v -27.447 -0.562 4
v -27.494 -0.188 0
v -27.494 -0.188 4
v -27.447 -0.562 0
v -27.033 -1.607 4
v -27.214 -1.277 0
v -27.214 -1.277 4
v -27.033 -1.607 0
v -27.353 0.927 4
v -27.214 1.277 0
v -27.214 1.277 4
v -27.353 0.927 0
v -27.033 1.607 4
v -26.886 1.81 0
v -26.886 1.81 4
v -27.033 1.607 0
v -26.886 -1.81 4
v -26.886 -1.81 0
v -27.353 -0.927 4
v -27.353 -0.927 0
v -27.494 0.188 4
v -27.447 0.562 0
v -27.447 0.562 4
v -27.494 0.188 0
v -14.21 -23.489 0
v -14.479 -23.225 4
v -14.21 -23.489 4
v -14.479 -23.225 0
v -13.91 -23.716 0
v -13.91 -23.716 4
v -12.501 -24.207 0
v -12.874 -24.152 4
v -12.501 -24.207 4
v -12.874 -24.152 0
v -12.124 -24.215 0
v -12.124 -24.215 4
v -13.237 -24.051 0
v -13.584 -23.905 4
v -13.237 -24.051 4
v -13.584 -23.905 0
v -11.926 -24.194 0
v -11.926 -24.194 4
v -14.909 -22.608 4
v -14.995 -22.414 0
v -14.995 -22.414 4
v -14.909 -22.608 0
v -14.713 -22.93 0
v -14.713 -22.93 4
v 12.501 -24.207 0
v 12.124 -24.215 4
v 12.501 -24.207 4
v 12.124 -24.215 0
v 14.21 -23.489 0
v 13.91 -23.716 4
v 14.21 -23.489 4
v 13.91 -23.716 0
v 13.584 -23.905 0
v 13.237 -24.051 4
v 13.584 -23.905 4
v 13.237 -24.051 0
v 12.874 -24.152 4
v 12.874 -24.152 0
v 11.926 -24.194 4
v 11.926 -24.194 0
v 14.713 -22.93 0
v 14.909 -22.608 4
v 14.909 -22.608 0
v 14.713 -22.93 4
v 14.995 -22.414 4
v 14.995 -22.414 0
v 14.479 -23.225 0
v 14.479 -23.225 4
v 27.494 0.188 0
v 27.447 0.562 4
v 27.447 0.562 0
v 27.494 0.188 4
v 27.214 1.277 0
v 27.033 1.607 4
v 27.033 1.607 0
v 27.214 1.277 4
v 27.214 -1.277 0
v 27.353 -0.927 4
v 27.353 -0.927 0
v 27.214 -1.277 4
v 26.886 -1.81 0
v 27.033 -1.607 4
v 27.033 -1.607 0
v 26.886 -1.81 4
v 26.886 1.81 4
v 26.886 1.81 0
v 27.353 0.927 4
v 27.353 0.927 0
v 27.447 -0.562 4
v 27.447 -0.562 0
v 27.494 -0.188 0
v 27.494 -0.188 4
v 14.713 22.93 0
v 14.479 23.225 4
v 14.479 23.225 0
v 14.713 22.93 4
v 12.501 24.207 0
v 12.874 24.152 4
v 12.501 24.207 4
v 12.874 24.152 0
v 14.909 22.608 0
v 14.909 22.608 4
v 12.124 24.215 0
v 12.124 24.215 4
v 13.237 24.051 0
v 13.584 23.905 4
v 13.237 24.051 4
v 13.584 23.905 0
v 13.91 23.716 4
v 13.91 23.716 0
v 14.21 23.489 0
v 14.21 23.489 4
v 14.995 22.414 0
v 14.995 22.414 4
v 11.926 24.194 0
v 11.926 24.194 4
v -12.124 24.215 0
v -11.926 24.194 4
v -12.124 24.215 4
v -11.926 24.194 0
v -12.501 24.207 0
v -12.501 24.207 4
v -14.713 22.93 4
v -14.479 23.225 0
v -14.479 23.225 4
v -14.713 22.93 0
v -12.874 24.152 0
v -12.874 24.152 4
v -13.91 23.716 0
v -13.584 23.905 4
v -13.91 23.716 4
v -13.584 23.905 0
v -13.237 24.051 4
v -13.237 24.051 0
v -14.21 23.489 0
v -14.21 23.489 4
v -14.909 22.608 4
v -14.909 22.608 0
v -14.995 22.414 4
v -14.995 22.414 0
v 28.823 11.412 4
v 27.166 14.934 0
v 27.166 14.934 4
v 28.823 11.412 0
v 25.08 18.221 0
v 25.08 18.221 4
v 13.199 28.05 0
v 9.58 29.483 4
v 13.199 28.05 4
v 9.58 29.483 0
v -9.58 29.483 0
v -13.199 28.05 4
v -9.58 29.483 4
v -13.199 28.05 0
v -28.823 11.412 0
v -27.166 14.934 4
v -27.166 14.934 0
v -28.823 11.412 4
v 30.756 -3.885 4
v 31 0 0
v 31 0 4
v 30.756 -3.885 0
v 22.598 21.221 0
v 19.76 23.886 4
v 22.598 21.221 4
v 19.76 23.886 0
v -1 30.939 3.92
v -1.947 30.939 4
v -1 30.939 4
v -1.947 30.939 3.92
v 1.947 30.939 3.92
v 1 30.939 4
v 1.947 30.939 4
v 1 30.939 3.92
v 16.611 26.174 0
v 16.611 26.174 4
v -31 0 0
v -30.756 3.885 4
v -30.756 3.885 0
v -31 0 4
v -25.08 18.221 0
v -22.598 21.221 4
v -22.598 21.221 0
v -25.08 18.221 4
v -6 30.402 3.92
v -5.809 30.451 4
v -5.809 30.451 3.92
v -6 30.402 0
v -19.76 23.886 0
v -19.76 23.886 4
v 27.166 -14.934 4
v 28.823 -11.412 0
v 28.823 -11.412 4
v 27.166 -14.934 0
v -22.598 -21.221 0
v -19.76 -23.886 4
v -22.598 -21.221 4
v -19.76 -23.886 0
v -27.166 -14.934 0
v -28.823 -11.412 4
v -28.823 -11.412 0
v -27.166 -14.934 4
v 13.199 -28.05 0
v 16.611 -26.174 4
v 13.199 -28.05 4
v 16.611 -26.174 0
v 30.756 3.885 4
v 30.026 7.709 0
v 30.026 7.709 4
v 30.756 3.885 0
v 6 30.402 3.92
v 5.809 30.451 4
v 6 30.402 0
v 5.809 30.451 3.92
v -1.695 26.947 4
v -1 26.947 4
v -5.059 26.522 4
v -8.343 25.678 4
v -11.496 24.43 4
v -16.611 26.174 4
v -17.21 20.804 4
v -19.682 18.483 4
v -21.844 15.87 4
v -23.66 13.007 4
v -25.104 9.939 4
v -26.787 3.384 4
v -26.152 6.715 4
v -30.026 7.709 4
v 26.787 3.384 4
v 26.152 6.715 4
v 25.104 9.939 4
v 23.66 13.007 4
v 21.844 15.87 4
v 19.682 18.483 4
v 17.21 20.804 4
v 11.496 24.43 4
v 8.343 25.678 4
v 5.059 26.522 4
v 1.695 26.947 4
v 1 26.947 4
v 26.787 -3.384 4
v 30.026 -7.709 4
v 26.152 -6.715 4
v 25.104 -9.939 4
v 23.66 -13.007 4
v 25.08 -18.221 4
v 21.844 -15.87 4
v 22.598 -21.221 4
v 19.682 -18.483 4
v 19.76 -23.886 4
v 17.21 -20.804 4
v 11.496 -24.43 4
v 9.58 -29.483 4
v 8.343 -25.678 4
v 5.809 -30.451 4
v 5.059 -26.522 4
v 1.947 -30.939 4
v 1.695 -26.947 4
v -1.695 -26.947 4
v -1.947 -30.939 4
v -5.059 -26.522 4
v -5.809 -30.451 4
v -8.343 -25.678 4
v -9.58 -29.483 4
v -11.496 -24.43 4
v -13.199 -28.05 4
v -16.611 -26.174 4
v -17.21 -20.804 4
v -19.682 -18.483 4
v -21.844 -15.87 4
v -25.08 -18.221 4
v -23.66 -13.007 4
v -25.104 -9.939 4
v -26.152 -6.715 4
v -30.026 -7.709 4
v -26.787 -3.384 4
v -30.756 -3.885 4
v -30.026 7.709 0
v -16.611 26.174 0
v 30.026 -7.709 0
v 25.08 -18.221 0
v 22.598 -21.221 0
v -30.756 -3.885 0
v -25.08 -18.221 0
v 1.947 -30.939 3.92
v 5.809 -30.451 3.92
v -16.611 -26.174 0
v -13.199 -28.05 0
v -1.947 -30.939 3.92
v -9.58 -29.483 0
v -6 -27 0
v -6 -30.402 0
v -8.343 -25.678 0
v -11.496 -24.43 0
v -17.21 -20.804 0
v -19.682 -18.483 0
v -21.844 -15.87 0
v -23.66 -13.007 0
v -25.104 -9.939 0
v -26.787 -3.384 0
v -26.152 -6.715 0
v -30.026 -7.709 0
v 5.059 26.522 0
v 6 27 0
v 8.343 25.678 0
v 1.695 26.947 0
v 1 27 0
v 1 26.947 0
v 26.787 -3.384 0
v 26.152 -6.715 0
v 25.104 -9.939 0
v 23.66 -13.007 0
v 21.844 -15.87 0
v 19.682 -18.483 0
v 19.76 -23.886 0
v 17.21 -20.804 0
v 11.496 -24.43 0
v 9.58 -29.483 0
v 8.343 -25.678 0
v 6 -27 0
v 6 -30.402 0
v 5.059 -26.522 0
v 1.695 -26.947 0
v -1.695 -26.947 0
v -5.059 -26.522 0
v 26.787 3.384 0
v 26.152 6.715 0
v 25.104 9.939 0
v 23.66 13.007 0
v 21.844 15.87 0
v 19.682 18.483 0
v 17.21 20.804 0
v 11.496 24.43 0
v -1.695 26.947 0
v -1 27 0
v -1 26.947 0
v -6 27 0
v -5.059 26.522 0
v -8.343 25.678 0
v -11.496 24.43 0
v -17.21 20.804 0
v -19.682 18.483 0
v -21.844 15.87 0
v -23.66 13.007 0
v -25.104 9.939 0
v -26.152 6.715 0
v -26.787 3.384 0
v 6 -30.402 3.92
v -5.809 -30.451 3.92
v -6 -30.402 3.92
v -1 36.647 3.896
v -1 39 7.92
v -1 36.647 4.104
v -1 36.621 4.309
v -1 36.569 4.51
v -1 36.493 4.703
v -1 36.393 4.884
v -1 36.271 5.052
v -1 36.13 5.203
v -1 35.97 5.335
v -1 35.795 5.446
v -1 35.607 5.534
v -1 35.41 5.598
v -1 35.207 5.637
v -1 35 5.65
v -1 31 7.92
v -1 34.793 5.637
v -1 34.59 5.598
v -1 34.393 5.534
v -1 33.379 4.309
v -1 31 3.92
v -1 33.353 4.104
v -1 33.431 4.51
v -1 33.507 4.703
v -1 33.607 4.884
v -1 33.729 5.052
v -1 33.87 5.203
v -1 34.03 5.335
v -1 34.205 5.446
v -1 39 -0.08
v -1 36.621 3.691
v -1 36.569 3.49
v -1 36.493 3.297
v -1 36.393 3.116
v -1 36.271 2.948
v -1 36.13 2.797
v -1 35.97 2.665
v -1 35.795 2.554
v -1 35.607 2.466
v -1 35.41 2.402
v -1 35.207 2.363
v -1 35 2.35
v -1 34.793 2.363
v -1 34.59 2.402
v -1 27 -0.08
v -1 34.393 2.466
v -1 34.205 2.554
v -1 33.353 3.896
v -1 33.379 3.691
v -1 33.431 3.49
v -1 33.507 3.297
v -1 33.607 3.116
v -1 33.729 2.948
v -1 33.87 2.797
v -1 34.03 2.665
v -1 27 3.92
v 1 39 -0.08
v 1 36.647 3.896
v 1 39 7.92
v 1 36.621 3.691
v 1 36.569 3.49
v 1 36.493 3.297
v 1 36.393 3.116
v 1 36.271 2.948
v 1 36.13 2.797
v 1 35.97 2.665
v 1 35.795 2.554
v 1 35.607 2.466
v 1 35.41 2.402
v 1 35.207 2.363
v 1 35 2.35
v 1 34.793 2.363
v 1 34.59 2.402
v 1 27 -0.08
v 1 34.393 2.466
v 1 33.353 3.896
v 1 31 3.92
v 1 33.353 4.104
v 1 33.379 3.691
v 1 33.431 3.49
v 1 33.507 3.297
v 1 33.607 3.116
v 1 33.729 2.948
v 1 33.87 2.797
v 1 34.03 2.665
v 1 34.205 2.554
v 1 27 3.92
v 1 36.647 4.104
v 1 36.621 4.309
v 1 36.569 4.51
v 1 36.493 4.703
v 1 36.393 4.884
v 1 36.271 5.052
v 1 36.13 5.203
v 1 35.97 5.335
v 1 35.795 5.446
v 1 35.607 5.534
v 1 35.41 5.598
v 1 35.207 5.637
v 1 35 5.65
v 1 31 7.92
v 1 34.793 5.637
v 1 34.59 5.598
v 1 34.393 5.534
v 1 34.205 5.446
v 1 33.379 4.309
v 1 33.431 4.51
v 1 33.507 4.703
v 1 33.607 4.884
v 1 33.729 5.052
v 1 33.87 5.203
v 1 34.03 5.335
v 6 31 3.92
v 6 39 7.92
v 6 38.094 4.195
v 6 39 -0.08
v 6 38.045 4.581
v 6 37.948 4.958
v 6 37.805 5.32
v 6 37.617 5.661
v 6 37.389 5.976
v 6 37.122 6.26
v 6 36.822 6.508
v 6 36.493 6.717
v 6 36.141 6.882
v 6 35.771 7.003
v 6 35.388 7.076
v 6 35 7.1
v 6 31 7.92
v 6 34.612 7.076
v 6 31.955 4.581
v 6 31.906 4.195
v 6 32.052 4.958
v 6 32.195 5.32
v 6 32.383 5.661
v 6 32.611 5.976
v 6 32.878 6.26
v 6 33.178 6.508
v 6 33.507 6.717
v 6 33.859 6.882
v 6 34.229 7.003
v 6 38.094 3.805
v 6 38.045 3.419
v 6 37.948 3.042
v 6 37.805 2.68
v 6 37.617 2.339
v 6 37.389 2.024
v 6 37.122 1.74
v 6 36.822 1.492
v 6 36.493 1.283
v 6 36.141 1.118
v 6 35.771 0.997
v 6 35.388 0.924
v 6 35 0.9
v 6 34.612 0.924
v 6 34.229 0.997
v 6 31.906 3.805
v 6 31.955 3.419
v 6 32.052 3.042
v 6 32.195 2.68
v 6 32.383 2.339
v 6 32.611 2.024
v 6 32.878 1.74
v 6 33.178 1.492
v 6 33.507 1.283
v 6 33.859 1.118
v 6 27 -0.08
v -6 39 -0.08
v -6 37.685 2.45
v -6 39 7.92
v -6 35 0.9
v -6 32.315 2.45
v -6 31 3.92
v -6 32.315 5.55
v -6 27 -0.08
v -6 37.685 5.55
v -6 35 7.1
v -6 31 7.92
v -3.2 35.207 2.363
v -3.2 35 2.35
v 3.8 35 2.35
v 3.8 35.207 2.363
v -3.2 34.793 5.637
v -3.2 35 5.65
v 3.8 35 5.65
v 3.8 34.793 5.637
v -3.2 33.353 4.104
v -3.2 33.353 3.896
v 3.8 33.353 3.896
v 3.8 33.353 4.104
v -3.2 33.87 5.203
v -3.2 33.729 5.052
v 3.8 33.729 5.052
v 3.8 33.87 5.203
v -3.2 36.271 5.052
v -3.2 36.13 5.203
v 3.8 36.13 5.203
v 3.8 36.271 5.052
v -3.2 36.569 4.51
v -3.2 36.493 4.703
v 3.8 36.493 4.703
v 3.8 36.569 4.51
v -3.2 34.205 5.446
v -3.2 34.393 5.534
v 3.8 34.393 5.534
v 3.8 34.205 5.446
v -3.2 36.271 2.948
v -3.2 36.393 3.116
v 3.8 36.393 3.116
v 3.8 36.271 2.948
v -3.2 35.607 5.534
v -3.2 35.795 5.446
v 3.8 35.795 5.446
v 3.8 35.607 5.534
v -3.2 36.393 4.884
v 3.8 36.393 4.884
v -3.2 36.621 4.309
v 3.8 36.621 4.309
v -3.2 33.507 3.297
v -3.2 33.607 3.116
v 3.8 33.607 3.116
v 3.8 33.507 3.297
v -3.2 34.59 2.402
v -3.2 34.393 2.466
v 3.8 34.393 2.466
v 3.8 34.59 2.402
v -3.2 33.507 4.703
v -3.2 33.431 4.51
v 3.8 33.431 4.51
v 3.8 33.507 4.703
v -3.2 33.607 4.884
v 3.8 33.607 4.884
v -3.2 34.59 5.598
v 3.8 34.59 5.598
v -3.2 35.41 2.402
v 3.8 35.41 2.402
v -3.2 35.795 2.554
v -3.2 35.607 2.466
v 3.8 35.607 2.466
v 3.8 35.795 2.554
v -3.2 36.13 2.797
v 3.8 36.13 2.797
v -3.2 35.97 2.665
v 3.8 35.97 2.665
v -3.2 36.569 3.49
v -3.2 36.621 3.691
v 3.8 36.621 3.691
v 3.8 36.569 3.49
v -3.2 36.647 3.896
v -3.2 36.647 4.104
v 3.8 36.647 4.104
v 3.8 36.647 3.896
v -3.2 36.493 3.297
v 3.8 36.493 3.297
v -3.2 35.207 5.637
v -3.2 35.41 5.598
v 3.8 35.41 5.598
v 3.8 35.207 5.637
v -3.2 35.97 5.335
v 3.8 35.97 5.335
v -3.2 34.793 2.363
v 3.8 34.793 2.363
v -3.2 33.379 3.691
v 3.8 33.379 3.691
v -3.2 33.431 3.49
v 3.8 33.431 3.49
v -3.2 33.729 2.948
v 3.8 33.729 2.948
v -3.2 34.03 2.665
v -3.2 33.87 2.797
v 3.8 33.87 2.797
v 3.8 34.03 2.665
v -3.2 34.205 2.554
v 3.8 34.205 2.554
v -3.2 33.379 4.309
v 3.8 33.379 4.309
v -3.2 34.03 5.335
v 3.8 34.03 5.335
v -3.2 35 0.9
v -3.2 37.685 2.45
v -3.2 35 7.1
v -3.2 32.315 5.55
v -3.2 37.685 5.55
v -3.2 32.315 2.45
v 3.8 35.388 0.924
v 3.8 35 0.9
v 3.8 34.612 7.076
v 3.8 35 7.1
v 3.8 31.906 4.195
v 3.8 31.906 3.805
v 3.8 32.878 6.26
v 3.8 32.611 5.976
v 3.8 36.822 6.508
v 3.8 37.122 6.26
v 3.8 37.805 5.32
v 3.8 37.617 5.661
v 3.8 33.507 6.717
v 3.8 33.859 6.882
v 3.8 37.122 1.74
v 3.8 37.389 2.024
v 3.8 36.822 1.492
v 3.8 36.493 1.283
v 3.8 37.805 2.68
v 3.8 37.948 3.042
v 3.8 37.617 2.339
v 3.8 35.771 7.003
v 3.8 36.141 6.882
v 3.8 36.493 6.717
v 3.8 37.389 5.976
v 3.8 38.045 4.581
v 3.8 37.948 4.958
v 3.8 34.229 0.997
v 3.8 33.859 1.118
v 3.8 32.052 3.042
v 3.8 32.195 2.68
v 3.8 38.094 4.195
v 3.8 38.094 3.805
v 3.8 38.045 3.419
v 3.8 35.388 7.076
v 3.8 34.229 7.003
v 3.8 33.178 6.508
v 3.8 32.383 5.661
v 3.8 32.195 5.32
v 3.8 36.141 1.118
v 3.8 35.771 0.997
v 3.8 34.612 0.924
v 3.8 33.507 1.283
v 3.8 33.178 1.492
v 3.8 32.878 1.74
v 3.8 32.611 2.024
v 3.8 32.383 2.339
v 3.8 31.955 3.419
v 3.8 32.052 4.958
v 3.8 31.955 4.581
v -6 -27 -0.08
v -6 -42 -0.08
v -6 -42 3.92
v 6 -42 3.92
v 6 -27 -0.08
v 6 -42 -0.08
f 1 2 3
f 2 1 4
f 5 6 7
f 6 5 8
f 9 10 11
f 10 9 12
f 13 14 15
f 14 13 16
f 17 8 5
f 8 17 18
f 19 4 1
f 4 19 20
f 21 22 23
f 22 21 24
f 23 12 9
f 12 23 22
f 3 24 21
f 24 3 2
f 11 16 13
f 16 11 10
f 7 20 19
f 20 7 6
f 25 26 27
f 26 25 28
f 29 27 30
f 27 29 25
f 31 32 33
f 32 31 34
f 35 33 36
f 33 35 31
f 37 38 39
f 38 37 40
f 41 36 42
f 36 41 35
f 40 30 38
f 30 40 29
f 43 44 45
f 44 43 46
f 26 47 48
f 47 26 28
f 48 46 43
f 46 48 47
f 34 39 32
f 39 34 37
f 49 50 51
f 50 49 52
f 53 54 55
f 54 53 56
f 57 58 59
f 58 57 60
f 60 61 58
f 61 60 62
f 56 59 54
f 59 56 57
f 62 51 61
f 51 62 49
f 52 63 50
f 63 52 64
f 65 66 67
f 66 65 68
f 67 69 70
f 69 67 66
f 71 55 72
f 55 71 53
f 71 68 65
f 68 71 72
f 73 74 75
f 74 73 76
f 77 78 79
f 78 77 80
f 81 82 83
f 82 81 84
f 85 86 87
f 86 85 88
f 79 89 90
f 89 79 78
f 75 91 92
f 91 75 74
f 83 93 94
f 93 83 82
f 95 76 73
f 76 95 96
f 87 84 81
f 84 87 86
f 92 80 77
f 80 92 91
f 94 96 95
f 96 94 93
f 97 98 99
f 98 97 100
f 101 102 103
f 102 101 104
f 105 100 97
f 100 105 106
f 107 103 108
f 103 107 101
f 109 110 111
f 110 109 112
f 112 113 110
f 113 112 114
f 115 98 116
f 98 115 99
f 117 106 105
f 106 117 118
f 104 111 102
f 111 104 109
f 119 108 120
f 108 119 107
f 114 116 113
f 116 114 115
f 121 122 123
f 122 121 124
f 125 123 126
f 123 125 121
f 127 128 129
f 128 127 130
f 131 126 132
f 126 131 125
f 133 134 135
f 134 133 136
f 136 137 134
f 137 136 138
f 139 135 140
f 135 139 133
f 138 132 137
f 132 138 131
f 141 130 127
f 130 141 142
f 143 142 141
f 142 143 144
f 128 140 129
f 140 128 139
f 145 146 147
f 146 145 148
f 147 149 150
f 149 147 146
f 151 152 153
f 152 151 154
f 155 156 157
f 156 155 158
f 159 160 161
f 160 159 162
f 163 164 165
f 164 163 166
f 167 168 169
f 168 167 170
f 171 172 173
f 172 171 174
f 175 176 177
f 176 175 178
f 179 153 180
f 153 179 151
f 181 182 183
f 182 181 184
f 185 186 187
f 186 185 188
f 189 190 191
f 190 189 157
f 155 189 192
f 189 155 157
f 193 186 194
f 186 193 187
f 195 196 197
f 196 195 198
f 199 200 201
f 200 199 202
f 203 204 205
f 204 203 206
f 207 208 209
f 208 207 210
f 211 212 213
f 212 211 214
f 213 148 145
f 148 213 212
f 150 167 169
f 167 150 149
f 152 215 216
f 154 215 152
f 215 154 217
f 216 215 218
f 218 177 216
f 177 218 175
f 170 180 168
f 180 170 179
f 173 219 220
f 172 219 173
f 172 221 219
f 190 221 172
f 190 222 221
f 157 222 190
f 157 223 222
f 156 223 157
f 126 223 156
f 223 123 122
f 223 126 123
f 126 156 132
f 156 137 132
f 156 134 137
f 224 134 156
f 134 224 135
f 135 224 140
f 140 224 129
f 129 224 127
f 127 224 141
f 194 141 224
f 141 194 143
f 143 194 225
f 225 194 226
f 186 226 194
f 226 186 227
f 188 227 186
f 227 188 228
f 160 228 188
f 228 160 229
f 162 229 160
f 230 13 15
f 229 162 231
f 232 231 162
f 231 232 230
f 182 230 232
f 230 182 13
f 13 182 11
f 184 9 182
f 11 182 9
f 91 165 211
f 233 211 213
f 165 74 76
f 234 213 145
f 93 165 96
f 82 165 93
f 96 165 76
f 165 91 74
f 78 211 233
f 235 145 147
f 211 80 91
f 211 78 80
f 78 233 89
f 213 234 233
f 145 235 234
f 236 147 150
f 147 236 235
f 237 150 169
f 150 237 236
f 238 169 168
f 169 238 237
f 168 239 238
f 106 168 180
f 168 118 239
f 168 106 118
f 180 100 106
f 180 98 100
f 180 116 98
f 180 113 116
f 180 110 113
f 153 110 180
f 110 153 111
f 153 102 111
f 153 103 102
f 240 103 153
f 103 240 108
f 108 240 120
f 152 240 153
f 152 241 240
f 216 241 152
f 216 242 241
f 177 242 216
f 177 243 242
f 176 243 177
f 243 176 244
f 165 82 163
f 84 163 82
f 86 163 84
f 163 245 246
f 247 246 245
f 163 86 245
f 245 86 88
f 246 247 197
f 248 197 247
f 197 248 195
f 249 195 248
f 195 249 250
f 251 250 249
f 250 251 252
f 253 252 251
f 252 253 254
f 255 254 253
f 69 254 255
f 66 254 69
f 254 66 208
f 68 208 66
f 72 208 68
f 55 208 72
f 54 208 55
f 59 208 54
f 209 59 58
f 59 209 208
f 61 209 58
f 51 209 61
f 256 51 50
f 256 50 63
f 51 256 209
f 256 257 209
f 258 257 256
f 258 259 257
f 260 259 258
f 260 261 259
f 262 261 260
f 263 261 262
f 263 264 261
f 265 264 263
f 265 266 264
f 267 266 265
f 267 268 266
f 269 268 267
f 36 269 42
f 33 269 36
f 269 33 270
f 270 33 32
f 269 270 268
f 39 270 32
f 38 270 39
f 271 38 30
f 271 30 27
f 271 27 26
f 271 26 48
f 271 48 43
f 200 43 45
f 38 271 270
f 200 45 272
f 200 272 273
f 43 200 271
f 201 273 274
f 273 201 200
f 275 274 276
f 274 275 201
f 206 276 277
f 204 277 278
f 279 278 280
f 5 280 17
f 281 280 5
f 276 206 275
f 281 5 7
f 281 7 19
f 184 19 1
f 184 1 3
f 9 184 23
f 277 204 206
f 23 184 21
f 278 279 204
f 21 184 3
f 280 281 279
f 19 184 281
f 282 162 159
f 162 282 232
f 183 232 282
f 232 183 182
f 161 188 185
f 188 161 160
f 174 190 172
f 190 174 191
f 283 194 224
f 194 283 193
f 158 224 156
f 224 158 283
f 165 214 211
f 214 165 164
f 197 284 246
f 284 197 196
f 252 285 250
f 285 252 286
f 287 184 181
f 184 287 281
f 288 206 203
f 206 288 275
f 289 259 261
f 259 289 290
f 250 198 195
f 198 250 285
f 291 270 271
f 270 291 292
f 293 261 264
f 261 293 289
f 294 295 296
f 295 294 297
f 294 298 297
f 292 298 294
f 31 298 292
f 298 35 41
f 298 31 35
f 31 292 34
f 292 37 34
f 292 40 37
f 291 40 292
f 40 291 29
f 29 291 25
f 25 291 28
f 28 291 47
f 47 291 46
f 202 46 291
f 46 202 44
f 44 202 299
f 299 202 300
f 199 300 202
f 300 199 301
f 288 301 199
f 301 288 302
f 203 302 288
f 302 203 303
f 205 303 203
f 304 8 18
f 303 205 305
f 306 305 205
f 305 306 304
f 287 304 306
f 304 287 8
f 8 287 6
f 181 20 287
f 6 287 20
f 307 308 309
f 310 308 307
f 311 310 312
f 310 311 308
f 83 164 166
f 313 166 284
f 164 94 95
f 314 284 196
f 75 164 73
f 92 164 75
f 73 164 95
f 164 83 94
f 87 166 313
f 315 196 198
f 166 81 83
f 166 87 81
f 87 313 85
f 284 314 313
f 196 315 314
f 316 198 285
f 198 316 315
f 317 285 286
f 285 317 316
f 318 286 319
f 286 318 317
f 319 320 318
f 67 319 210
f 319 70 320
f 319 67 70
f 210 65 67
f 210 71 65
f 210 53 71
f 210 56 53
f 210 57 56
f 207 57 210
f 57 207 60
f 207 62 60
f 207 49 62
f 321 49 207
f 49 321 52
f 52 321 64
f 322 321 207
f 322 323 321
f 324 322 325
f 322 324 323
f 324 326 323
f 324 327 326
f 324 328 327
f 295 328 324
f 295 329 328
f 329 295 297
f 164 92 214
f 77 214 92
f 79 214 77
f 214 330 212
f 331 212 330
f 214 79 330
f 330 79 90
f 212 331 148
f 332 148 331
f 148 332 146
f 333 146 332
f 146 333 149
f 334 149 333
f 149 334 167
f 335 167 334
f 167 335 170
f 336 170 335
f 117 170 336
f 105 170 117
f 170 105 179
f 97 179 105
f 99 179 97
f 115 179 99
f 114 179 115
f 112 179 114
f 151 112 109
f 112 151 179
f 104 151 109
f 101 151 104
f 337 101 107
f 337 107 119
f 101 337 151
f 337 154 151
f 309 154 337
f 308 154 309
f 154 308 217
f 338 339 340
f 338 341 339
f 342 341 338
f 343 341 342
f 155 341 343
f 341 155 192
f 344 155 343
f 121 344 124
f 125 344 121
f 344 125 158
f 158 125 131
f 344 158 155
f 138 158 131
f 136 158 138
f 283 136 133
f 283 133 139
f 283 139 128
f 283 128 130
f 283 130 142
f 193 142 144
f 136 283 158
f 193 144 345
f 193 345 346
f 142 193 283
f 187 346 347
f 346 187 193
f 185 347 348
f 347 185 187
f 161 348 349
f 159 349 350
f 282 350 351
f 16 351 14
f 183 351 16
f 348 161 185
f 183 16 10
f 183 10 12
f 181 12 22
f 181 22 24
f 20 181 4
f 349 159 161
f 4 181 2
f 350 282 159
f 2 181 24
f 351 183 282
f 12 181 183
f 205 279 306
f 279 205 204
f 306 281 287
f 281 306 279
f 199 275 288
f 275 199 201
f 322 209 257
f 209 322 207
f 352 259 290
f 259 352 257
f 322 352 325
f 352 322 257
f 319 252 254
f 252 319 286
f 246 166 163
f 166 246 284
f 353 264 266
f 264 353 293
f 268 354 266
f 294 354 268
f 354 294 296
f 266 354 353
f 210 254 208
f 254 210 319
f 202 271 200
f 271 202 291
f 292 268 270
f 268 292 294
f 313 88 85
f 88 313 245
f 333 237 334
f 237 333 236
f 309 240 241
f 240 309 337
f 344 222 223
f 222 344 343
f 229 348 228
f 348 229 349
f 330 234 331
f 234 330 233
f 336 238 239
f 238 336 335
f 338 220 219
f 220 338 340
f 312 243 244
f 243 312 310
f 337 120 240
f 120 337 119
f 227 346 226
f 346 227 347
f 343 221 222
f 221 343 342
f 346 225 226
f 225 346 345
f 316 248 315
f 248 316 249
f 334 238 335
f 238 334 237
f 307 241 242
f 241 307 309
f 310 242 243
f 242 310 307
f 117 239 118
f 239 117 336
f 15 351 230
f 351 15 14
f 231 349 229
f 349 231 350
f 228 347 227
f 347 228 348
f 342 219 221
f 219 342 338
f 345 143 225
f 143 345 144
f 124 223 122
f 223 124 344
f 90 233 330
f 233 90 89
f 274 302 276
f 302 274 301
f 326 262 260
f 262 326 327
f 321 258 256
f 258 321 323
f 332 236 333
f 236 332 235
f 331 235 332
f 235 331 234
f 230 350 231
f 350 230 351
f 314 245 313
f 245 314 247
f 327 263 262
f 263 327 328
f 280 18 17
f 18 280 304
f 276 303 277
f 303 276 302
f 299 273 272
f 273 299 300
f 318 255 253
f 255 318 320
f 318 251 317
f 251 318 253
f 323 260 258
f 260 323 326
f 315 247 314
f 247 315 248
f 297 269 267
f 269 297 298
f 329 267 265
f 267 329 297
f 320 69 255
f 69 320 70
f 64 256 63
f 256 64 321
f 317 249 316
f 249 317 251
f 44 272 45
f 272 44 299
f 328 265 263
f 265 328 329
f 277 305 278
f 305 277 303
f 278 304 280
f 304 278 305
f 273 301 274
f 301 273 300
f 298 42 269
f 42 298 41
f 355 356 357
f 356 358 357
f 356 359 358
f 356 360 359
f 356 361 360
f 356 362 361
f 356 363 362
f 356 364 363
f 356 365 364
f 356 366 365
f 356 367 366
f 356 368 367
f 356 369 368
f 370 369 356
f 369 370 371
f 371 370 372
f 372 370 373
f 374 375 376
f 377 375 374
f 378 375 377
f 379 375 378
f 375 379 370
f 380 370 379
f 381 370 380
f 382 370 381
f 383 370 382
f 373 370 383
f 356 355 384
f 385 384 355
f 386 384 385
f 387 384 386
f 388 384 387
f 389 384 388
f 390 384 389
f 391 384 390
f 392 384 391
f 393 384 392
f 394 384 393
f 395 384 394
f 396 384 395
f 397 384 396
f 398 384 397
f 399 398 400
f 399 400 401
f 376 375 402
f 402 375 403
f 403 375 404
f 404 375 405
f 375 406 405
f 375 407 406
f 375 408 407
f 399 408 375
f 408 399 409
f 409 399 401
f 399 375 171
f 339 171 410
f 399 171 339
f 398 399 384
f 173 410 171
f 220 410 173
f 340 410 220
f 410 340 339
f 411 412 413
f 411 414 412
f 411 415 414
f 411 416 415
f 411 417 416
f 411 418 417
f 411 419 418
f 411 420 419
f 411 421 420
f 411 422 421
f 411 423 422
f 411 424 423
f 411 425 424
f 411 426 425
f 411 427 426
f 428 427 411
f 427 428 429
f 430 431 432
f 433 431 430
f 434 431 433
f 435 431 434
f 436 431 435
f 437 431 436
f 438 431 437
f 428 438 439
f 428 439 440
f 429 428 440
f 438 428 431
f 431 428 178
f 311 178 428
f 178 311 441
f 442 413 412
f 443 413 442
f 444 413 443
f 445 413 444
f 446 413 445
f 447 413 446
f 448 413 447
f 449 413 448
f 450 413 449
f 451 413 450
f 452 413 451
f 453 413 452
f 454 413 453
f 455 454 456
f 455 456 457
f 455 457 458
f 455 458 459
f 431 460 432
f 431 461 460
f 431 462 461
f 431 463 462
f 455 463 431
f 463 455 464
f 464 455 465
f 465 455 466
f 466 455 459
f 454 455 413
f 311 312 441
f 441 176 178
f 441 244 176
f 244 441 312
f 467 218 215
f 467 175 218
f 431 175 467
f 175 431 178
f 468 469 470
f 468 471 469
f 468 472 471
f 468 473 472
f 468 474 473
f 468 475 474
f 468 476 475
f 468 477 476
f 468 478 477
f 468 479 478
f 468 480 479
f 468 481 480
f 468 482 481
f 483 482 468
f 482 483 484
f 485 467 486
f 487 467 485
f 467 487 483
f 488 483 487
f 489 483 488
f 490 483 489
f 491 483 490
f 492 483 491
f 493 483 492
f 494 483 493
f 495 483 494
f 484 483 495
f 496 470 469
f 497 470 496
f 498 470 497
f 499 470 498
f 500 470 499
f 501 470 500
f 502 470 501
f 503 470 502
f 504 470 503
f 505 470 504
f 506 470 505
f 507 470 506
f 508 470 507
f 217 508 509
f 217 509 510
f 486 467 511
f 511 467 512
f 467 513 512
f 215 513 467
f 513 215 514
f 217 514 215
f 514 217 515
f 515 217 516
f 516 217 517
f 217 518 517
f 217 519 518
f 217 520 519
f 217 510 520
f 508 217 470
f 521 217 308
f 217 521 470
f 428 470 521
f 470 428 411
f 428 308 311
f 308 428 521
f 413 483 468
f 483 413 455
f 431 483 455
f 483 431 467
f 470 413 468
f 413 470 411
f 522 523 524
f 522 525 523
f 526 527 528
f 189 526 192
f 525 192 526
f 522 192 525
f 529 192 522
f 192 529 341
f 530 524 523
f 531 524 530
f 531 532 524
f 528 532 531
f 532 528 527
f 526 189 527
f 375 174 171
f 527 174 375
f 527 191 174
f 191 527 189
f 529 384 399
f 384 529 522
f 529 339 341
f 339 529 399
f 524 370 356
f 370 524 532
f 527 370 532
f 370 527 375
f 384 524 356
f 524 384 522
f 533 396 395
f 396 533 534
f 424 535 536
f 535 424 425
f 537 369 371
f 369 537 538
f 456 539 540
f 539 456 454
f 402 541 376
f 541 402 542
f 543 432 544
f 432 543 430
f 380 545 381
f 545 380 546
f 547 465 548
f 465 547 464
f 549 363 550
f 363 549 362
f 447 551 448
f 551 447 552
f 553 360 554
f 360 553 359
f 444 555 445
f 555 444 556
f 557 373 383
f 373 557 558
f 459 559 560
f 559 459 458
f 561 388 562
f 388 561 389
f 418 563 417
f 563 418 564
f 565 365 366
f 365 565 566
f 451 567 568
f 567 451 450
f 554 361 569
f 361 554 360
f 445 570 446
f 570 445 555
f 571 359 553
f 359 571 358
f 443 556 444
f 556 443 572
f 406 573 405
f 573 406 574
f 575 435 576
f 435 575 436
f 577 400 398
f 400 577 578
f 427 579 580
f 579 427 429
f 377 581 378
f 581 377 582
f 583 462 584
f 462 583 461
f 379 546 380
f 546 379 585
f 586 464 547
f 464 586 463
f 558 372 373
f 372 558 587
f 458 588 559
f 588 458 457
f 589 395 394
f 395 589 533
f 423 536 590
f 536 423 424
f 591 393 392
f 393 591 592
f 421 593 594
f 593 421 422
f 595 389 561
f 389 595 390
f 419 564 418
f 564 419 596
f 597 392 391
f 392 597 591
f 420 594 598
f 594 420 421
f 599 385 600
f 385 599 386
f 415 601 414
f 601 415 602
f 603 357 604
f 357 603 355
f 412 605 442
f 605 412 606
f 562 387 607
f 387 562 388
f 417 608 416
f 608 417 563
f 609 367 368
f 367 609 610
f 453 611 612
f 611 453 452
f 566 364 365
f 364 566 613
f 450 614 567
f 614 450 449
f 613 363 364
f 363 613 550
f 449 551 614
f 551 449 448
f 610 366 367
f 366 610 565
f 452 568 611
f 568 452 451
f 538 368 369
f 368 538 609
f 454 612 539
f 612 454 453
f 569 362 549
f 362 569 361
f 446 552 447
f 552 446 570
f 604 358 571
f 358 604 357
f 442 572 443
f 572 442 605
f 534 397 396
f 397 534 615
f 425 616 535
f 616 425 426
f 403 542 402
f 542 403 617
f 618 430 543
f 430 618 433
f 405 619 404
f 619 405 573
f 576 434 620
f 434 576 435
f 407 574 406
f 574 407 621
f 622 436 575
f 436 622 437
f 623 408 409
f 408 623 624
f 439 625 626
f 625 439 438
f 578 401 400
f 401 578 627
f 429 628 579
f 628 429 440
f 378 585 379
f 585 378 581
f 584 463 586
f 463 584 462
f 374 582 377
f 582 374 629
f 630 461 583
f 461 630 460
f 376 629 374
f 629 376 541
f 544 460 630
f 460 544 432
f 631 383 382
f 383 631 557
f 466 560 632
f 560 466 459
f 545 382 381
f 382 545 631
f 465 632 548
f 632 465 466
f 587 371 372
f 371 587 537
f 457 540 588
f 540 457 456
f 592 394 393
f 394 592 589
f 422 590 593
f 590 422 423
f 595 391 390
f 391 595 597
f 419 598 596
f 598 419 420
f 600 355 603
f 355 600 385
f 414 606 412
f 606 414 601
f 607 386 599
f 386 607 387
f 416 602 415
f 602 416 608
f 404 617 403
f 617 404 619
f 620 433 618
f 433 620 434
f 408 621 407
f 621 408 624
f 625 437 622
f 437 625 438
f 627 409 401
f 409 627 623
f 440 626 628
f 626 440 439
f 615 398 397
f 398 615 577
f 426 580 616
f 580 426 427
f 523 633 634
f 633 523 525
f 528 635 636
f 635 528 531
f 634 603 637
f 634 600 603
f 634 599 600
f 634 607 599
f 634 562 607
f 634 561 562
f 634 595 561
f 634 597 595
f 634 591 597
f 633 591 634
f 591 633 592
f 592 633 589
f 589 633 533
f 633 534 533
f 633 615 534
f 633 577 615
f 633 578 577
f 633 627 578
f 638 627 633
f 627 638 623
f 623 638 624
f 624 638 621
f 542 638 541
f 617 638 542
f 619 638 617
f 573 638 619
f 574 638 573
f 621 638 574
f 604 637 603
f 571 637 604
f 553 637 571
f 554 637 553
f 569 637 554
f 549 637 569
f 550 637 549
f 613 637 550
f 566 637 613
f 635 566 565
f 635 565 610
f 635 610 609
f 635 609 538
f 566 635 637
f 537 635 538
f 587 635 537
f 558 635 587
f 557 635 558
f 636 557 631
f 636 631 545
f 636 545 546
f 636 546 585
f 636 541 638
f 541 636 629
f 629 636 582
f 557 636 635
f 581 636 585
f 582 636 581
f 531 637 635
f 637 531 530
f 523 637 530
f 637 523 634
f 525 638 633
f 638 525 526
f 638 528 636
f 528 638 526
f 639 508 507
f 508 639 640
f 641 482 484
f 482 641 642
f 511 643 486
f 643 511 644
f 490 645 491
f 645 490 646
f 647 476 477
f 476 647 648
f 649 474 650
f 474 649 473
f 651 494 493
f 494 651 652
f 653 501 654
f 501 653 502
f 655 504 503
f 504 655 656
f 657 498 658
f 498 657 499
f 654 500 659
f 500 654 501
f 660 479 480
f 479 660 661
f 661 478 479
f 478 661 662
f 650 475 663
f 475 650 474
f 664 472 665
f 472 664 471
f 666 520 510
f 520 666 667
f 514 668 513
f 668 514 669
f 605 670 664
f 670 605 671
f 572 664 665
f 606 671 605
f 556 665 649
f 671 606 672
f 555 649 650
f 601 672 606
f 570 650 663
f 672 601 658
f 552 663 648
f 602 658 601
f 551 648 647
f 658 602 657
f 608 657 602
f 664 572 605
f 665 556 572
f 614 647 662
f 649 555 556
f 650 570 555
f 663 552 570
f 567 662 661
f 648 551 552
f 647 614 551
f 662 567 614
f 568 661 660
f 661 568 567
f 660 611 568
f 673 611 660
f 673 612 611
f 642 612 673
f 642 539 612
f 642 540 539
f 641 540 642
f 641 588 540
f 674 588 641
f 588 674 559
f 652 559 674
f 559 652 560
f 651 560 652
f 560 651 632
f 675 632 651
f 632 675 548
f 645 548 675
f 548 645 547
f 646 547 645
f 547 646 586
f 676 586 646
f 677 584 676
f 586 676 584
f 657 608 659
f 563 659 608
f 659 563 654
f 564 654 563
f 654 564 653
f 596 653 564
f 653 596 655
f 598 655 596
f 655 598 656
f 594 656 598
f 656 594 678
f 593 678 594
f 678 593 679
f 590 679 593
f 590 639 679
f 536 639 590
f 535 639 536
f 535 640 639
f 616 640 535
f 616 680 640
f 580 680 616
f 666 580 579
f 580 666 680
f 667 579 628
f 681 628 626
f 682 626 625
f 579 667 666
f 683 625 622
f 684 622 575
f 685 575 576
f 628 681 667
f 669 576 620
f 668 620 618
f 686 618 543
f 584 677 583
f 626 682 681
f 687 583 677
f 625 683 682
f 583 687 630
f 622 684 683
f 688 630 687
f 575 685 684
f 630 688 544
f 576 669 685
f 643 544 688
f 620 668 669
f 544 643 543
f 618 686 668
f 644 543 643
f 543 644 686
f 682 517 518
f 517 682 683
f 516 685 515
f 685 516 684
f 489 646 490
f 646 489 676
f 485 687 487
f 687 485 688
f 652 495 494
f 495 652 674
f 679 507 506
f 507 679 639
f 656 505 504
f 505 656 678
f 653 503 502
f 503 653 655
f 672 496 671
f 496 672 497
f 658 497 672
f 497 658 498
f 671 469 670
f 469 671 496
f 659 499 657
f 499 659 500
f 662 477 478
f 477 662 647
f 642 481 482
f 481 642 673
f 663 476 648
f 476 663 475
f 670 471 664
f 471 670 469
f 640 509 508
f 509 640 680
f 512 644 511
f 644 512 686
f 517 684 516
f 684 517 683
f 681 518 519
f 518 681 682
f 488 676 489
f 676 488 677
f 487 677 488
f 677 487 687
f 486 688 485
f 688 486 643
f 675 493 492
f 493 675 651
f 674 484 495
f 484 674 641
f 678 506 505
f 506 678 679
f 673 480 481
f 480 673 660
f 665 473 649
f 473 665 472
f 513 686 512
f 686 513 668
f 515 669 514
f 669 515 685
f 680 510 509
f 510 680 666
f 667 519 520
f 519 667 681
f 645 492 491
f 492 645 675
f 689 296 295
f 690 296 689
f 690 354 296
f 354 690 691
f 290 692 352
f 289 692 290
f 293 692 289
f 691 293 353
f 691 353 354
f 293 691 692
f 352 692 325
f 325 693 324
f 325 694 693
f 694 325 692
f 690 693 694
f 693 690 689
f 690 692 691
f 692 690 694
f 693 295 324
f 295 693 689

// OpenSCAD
$fn=50;
clear = 0.08;

fokuser_d = 54;
objimka_sirka = 4;
objimka_sila = 4;


module objimka_fokuseru(){
    difference(){
        cylinder(objimka_sirka, fokuser_d/2+objimka_sila, fokuser_d/2+objimka_sila);
        translate([0,0,-clear]) cylinder(objimka_sirka+2*clear, fokuser_d/2, fokuser_d/2);
        translate([-1,0,-clear]) cube([2,fokuser_d/2+objimka_sila, objimka_sirka+2*clear]);
        
        for (i = [1:6]) {
            rotate(i*360/6+30) translate([0,fokuser_d/2-3+0.5, -clear]) cylinder(objimka_sirka+2*clear, 3, 3);
        }
    }
    
    difference(){   // tahle cast vytvari kostky pro sroubky
        union(){
            translate([1,fokuser_d/2, -clear]) cube([5,10,objimka_sirka]);
            translate([1,fokuser_d/2+4, -clear]) cube([5,8,8]);
            translate([-6,fokuser_d/2, -clear]) cube([5,10,objimka_sirka]);
            translate([-6,fokuser_d/2+4, -clear]) cube([5,8,8]);
        }
        translate([-10,fokuser_d/2+4+4, 4]) rotate([0,90,0]) cylinder(20, 3.3/2, 3.3/2);
        translate([-10+3.8,fokuser_d/2+4+4, 4]) rotate([0,90,0]) cylinder(3, 6.2/2, 6.2/2, $fn=6);
        translate([10.8-7,fokuser_d/2+4+4, 4]) rotate([0,90,0]) cylinder(3, 6.2/2, 6.2/2);
    }
    
    difference(){  // cast vytvarejici misto pro jeden endstop.
        union(){
            translate([-6,-fokuser_d/2-15, -clear]) cube([12,15,objimka_sirka]);
        }

    }
    
    
}

objimka_fokuseru();
